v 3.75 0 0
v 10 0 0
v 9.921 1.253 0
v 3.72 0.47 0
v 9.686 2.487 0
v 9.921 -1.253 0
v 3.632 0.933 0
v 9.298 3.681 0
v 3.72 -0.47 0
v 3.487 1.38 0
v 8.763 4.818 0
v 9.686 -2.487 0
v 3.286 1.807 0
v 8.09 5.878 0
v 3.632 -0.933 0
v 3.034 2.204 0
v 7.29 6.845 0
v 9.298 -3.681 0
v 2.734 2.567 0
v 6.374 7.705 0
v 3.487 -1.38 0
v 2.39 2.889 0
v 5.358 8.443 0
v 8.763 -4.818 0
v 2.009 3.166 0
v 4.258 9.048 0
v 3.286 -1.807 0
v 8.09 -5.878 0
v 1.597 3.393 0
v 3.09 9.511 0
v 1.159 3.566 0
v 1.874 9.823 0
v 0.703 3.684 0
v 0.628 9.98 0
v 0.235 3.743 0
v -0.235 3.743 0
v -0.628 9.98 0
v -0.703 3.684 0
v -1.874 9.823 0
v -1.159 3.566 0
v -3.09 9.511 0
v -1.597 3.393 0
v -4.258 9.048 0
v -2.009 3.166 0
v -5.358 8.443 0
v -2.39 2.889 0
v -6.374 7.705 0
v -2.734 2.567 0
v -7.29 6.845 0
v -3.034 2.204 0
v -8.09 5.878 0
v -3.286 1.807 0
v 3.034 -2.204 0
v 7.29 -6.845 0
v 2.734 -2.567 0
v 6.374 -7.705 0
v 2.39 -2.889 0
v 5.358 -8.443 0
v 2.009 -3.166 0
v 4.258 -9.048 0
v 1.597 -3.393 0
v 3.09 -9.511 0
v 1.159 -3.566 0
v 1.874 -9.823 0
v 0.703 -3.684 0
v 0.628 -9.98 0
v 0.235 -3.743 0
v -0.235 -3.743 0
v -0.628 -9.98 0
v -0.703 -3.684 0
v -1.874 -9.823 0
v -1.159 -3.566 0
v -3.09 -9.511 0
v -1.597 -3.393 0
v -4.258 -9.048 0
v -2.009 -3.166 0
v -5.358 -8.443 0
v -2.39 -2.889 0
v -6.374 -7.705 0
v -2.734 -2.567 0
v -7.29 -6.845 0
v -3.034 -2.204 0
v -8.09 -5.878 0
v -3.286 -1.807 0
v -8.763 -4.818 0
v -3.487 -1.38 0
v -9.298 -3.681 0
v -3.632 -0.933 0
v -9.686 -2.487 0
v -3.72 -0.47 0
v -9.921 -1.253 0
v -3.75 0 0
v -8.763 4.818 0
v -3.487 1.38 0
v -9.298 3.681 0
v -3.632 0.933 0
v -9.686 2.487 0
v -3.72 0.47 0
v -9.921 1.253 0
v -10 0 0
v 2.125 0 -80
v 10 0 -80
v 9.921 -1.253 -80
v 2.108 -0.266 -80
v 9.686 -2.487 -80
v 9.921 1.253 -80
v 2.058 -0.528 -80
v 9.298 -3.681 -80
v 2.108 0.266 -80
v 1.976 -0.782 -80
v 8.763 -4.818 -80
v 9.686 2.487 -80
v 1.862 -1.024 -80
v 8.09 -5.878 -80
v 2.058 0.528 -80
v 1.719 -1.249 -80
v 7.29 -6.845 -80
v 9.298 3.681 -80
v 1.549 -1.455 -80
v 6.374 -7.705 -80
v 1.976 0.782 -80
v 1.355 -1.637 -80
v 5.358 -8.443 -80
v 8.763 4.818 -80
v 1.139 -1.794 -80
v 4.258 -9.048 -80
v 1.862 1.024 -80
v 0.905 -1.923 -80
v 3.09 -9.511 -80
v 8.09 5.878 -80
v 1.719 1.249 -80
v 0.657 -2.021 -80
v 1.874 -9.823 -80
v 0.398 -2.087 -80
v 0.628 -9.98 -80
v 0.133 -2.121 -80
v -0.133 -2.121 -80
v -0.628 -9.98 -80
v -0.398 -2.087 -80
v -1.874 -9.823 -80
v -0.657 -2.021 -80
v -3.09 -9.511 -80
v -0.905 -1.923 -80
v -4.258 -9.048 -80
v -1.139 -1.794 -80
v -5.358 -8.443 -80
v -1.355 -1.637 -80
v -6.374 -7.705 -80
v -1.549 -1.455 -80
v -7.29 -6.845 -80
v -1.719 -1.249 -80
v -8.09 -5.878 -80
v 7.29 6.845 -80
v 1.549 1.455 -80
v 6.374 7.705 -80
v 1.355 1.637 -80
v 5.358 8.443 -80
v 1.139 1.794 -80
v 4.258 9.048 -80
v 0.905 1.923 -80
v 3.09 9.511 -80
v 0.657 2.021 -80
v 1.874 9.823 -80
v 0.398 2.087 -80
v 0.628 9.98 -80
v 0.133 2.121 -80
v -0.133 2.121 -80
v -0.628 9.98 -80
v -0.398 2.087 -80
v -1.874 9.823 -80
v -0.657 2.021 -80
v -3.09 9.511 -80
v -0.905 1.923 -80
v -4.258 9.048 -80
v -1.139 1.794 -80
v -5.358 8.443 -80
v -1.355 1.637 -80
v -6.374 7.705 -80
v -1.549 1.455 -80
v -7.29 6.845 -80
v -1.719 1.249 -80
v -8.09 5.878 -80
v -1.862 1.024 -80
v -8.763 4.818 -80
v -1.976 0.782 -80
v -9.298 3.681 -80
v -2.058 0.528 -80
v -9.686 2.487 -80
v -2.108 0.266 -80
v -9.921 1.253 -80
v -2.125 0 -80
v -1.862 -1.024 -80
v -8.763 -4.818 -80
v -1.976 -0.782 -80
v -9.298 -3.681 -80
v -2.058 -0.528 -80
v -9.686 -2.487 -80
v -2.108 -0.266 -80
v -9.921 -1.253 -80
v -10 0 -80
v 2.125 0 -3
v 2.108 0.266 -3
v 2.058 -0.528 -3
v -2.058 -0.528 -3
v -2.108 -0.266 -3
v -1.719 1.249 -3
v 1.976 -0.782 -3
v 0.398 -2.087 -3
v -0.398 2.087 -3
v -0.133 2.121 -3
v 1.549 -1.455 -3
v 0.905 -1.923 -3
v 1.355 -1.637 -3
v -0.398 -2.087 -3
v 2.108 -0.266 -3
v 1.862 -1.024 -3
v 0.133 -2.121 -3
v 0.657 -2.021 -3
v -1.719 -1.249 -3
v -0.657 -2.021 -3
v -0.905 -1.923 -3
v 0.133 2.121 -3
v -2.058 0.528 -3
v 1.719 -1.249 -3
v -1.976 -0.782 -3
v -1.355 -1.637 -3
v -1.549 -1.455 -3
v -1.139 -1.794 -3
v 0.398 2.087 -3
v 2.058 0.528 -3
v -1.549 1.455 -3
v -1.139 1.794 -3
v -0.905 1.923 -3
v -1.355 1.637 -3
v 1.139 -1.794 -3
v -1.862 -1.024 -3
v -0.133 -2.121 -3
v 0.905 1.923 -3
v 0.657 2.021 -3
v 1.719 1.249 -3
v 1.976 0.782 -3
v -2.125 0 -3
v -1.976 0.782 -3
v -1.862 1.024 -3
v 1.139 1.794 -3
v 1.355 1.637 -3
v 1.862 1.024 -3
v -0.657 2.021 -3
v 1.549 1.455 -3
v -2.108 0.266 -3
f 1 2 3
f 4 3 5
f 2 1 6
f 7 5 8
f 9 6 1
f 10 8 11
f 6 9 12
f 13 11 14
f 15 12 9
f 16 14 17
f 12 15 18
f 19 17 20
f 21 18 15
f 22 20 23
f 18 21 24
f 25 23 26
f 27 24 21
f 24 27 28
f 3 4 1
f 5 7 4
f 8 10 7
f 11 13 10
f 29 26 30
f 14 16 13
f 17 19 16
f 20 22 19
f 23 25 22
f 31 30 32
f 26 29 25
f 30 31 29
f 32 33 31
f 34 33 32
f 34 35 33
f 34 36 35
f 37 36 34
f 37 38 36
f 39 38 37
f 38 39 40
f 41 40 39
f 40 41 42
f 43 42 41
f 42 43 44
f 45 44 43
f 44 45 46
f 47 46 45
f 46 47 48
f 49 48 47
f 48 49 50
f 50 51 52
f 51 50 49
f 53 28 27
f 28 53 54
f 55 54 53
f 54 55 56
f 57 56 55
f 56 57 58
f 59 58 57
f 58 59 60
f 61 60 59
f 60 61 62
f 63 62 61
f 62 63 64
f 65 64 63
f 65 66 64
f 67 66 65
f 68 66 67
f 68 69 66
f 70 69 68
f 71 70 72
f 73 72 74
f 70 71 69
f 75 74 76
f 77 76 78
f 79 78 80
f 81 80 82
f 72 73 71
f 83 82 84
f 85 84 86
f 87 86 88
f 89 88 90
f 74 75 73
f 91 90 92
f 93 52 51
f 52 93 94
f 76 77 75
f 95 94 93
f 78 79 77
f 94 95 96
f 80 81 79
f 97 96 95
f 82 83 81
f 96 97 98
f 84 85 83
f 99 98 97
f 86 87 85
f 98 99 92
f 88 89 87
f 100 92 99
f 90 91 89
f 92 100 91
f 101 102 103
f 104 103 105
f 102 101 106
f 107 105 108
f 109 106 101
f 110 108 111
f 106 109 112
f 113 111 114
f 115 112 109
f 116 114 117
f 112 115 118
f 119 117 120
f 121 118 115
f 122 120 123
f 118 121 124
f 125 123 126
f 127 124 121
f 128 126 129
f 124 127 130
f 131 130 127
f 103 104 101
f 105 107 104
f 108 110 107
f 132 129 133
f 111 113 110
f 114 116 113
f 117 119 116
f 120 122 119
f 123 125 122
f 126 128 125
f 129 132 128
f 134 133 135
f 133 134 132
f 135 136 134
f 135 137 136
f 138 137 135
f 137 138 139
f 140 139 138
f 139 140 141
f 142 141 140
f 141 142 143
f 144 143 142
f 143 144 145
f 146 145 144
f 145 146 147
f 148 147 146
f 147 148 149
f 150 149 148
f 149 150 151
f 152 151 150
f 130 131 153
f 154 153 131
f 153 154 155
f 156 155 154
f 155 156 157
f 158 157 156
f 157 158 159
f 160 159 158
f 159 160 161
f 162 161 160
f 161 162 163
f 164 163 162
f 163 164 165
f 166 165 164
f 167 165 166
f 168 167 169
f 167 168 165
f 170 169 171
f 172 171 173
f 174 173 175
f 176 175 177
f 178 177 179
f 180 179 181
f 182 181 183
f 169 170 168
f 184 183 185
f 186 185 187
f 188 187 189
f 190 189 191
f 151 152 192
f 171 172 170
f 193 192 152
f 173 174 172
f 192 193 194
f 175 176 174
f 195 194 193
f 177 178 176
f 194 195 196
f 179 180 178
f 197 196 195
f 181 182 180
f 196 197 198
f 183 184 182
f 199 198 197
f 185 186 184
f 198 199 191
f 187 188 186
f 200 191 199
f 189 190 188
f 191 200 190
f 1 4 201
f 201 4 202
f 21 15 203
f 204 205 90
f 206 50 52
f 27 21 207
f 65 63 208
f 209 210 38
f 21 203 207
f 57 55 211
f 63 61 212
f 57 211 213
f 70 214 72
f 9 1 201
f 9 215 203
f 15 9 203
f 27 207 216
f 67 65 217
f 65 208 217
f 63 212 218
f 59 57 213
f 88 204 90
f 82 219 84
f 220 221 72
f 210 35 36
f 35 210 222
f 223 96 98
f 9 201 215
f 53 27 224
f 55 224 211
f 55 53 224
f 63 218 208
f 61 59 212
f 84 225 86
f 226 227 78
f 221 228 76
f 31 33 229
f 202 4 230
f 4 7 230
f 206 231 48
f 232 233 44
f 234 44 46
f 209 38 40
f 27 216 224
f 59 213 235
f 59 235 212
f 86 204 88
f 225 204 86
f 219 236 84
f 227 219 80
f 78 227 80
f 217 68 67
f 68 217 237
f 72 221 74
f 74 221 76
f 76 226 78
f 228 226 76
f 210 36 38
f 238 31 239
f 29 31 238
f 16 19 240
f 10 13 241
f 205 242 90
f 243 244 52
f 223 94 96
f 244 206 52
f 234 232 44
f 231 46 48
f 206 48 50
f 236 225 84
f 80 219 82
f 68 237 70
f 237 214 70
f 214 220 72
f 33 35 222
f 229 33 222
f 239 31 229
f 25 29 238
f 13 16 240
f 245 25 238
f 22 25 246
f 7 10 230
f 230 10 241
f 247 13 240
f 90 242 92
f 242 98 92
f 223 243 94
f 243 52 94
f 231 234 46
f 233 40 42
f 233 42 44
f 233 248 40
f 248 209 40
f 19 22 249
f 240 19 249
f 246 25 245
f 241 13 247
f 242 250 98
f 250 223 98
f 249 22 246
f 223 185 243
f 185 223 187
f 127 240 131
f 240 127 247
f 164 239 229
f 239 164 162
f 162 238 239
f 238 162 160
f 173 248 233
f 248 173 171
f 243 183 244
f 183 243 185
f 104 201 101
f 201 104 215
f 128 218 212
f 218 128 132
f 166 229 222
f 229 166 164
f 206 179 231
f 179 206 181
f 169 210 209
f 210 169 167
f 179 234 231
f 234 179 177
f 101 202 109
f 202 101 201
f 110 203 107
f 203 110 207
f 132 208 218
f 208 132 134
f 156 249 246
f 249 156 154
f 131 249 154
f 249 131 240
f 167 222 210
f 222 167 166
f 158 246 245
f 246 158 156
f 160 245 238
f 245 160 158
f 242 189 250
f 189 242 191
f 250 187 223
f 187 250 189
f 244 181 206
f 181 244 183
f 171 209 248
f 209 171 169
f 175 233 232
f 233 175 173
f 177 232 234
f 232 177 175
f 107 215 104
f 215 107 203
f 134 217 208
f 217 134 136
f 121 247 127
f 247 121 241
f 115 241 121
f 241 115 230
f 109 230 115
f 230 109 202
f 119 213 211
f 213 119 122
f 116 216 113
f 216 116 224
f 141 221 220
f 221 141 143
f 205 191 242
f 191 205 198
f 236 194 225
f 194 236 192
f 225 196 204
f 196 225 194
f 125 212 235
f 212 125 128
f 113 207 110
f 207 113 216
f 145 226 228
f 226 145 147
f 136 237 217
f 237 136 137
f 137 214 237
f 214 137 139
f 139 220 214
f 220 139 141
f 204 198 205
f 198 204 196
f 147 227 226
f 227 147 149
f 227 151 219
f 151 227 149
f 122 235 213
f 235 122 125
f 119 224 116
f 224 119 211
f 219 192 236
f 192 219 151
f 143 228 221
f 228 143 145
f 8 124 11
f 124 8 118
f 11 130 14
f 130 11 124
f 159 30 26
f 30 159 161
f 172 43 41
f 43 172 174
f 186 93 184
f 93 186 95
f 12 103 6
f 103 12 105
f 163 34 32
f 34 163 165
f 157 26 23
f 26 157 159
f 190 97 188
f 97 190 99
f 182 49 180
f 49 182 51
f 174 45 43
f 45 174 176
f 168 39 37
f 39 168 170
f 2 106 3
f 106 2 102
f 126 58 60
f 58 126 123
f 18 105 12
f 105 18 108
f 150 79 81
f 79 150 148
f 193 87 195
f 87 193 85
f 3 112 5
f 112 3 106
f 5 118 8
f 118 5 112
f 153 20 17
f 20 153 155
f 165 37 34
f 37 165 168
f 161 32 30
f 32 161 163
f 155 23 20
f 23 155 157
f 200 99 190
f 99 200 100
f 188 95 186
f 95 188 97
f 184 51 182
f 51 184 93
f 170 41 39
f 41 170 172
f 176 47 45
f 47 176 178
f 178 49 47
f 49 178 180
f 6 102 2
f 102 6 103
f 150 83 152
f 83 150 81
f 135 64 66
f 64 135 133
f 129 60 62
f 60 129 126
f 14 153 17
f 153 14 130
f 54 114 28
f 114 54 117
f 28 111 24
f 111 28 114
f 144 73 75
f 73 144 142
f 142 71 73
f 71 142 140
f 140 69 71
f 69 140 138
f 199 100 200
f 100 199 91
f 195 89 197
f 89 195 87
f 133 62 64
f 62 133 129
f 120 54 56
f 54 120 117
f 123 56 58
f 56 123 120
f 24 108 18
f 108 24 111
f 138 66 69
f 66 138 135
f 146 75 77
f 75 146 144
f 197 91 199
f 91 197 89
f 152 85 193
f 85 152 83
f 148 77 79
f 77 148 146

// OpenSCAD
$fn = 50;


difference() {
	union() {
		translate(v = [0, 0, -80.0000000000]) {
			cylinder(h = 80, r = 10.0000000000);
		}
		cylinder(h = 0, r = 16.0000000000);
	}
	union() {
		translate(v = [0, 0, 0]) {
			rotate(a = [0, 0, 0]) {
				difference() {
					union() {
						#translate(v = [0, 0, -80.0000000000]) {
							cylinder(h = 80, r = 2.0000000000);
						}
						#translate(v = [0, 0, -3]) {
							cylinder(h = 3, r = 10.0000000000, r1 = 2.1250000000, r2 = 3.7500000000);
						}
						#translate(v = [0, 0, -80.0000000000]) {
							cylinder(h = 80, r = 2.1250000000);
						}
						#translate(v = [0, 0, -80.0000000000]) {
							cylinder(h = 80, r = 2.0000000000);
						}
					}
					union();
				}
			}
		}
	}
}
